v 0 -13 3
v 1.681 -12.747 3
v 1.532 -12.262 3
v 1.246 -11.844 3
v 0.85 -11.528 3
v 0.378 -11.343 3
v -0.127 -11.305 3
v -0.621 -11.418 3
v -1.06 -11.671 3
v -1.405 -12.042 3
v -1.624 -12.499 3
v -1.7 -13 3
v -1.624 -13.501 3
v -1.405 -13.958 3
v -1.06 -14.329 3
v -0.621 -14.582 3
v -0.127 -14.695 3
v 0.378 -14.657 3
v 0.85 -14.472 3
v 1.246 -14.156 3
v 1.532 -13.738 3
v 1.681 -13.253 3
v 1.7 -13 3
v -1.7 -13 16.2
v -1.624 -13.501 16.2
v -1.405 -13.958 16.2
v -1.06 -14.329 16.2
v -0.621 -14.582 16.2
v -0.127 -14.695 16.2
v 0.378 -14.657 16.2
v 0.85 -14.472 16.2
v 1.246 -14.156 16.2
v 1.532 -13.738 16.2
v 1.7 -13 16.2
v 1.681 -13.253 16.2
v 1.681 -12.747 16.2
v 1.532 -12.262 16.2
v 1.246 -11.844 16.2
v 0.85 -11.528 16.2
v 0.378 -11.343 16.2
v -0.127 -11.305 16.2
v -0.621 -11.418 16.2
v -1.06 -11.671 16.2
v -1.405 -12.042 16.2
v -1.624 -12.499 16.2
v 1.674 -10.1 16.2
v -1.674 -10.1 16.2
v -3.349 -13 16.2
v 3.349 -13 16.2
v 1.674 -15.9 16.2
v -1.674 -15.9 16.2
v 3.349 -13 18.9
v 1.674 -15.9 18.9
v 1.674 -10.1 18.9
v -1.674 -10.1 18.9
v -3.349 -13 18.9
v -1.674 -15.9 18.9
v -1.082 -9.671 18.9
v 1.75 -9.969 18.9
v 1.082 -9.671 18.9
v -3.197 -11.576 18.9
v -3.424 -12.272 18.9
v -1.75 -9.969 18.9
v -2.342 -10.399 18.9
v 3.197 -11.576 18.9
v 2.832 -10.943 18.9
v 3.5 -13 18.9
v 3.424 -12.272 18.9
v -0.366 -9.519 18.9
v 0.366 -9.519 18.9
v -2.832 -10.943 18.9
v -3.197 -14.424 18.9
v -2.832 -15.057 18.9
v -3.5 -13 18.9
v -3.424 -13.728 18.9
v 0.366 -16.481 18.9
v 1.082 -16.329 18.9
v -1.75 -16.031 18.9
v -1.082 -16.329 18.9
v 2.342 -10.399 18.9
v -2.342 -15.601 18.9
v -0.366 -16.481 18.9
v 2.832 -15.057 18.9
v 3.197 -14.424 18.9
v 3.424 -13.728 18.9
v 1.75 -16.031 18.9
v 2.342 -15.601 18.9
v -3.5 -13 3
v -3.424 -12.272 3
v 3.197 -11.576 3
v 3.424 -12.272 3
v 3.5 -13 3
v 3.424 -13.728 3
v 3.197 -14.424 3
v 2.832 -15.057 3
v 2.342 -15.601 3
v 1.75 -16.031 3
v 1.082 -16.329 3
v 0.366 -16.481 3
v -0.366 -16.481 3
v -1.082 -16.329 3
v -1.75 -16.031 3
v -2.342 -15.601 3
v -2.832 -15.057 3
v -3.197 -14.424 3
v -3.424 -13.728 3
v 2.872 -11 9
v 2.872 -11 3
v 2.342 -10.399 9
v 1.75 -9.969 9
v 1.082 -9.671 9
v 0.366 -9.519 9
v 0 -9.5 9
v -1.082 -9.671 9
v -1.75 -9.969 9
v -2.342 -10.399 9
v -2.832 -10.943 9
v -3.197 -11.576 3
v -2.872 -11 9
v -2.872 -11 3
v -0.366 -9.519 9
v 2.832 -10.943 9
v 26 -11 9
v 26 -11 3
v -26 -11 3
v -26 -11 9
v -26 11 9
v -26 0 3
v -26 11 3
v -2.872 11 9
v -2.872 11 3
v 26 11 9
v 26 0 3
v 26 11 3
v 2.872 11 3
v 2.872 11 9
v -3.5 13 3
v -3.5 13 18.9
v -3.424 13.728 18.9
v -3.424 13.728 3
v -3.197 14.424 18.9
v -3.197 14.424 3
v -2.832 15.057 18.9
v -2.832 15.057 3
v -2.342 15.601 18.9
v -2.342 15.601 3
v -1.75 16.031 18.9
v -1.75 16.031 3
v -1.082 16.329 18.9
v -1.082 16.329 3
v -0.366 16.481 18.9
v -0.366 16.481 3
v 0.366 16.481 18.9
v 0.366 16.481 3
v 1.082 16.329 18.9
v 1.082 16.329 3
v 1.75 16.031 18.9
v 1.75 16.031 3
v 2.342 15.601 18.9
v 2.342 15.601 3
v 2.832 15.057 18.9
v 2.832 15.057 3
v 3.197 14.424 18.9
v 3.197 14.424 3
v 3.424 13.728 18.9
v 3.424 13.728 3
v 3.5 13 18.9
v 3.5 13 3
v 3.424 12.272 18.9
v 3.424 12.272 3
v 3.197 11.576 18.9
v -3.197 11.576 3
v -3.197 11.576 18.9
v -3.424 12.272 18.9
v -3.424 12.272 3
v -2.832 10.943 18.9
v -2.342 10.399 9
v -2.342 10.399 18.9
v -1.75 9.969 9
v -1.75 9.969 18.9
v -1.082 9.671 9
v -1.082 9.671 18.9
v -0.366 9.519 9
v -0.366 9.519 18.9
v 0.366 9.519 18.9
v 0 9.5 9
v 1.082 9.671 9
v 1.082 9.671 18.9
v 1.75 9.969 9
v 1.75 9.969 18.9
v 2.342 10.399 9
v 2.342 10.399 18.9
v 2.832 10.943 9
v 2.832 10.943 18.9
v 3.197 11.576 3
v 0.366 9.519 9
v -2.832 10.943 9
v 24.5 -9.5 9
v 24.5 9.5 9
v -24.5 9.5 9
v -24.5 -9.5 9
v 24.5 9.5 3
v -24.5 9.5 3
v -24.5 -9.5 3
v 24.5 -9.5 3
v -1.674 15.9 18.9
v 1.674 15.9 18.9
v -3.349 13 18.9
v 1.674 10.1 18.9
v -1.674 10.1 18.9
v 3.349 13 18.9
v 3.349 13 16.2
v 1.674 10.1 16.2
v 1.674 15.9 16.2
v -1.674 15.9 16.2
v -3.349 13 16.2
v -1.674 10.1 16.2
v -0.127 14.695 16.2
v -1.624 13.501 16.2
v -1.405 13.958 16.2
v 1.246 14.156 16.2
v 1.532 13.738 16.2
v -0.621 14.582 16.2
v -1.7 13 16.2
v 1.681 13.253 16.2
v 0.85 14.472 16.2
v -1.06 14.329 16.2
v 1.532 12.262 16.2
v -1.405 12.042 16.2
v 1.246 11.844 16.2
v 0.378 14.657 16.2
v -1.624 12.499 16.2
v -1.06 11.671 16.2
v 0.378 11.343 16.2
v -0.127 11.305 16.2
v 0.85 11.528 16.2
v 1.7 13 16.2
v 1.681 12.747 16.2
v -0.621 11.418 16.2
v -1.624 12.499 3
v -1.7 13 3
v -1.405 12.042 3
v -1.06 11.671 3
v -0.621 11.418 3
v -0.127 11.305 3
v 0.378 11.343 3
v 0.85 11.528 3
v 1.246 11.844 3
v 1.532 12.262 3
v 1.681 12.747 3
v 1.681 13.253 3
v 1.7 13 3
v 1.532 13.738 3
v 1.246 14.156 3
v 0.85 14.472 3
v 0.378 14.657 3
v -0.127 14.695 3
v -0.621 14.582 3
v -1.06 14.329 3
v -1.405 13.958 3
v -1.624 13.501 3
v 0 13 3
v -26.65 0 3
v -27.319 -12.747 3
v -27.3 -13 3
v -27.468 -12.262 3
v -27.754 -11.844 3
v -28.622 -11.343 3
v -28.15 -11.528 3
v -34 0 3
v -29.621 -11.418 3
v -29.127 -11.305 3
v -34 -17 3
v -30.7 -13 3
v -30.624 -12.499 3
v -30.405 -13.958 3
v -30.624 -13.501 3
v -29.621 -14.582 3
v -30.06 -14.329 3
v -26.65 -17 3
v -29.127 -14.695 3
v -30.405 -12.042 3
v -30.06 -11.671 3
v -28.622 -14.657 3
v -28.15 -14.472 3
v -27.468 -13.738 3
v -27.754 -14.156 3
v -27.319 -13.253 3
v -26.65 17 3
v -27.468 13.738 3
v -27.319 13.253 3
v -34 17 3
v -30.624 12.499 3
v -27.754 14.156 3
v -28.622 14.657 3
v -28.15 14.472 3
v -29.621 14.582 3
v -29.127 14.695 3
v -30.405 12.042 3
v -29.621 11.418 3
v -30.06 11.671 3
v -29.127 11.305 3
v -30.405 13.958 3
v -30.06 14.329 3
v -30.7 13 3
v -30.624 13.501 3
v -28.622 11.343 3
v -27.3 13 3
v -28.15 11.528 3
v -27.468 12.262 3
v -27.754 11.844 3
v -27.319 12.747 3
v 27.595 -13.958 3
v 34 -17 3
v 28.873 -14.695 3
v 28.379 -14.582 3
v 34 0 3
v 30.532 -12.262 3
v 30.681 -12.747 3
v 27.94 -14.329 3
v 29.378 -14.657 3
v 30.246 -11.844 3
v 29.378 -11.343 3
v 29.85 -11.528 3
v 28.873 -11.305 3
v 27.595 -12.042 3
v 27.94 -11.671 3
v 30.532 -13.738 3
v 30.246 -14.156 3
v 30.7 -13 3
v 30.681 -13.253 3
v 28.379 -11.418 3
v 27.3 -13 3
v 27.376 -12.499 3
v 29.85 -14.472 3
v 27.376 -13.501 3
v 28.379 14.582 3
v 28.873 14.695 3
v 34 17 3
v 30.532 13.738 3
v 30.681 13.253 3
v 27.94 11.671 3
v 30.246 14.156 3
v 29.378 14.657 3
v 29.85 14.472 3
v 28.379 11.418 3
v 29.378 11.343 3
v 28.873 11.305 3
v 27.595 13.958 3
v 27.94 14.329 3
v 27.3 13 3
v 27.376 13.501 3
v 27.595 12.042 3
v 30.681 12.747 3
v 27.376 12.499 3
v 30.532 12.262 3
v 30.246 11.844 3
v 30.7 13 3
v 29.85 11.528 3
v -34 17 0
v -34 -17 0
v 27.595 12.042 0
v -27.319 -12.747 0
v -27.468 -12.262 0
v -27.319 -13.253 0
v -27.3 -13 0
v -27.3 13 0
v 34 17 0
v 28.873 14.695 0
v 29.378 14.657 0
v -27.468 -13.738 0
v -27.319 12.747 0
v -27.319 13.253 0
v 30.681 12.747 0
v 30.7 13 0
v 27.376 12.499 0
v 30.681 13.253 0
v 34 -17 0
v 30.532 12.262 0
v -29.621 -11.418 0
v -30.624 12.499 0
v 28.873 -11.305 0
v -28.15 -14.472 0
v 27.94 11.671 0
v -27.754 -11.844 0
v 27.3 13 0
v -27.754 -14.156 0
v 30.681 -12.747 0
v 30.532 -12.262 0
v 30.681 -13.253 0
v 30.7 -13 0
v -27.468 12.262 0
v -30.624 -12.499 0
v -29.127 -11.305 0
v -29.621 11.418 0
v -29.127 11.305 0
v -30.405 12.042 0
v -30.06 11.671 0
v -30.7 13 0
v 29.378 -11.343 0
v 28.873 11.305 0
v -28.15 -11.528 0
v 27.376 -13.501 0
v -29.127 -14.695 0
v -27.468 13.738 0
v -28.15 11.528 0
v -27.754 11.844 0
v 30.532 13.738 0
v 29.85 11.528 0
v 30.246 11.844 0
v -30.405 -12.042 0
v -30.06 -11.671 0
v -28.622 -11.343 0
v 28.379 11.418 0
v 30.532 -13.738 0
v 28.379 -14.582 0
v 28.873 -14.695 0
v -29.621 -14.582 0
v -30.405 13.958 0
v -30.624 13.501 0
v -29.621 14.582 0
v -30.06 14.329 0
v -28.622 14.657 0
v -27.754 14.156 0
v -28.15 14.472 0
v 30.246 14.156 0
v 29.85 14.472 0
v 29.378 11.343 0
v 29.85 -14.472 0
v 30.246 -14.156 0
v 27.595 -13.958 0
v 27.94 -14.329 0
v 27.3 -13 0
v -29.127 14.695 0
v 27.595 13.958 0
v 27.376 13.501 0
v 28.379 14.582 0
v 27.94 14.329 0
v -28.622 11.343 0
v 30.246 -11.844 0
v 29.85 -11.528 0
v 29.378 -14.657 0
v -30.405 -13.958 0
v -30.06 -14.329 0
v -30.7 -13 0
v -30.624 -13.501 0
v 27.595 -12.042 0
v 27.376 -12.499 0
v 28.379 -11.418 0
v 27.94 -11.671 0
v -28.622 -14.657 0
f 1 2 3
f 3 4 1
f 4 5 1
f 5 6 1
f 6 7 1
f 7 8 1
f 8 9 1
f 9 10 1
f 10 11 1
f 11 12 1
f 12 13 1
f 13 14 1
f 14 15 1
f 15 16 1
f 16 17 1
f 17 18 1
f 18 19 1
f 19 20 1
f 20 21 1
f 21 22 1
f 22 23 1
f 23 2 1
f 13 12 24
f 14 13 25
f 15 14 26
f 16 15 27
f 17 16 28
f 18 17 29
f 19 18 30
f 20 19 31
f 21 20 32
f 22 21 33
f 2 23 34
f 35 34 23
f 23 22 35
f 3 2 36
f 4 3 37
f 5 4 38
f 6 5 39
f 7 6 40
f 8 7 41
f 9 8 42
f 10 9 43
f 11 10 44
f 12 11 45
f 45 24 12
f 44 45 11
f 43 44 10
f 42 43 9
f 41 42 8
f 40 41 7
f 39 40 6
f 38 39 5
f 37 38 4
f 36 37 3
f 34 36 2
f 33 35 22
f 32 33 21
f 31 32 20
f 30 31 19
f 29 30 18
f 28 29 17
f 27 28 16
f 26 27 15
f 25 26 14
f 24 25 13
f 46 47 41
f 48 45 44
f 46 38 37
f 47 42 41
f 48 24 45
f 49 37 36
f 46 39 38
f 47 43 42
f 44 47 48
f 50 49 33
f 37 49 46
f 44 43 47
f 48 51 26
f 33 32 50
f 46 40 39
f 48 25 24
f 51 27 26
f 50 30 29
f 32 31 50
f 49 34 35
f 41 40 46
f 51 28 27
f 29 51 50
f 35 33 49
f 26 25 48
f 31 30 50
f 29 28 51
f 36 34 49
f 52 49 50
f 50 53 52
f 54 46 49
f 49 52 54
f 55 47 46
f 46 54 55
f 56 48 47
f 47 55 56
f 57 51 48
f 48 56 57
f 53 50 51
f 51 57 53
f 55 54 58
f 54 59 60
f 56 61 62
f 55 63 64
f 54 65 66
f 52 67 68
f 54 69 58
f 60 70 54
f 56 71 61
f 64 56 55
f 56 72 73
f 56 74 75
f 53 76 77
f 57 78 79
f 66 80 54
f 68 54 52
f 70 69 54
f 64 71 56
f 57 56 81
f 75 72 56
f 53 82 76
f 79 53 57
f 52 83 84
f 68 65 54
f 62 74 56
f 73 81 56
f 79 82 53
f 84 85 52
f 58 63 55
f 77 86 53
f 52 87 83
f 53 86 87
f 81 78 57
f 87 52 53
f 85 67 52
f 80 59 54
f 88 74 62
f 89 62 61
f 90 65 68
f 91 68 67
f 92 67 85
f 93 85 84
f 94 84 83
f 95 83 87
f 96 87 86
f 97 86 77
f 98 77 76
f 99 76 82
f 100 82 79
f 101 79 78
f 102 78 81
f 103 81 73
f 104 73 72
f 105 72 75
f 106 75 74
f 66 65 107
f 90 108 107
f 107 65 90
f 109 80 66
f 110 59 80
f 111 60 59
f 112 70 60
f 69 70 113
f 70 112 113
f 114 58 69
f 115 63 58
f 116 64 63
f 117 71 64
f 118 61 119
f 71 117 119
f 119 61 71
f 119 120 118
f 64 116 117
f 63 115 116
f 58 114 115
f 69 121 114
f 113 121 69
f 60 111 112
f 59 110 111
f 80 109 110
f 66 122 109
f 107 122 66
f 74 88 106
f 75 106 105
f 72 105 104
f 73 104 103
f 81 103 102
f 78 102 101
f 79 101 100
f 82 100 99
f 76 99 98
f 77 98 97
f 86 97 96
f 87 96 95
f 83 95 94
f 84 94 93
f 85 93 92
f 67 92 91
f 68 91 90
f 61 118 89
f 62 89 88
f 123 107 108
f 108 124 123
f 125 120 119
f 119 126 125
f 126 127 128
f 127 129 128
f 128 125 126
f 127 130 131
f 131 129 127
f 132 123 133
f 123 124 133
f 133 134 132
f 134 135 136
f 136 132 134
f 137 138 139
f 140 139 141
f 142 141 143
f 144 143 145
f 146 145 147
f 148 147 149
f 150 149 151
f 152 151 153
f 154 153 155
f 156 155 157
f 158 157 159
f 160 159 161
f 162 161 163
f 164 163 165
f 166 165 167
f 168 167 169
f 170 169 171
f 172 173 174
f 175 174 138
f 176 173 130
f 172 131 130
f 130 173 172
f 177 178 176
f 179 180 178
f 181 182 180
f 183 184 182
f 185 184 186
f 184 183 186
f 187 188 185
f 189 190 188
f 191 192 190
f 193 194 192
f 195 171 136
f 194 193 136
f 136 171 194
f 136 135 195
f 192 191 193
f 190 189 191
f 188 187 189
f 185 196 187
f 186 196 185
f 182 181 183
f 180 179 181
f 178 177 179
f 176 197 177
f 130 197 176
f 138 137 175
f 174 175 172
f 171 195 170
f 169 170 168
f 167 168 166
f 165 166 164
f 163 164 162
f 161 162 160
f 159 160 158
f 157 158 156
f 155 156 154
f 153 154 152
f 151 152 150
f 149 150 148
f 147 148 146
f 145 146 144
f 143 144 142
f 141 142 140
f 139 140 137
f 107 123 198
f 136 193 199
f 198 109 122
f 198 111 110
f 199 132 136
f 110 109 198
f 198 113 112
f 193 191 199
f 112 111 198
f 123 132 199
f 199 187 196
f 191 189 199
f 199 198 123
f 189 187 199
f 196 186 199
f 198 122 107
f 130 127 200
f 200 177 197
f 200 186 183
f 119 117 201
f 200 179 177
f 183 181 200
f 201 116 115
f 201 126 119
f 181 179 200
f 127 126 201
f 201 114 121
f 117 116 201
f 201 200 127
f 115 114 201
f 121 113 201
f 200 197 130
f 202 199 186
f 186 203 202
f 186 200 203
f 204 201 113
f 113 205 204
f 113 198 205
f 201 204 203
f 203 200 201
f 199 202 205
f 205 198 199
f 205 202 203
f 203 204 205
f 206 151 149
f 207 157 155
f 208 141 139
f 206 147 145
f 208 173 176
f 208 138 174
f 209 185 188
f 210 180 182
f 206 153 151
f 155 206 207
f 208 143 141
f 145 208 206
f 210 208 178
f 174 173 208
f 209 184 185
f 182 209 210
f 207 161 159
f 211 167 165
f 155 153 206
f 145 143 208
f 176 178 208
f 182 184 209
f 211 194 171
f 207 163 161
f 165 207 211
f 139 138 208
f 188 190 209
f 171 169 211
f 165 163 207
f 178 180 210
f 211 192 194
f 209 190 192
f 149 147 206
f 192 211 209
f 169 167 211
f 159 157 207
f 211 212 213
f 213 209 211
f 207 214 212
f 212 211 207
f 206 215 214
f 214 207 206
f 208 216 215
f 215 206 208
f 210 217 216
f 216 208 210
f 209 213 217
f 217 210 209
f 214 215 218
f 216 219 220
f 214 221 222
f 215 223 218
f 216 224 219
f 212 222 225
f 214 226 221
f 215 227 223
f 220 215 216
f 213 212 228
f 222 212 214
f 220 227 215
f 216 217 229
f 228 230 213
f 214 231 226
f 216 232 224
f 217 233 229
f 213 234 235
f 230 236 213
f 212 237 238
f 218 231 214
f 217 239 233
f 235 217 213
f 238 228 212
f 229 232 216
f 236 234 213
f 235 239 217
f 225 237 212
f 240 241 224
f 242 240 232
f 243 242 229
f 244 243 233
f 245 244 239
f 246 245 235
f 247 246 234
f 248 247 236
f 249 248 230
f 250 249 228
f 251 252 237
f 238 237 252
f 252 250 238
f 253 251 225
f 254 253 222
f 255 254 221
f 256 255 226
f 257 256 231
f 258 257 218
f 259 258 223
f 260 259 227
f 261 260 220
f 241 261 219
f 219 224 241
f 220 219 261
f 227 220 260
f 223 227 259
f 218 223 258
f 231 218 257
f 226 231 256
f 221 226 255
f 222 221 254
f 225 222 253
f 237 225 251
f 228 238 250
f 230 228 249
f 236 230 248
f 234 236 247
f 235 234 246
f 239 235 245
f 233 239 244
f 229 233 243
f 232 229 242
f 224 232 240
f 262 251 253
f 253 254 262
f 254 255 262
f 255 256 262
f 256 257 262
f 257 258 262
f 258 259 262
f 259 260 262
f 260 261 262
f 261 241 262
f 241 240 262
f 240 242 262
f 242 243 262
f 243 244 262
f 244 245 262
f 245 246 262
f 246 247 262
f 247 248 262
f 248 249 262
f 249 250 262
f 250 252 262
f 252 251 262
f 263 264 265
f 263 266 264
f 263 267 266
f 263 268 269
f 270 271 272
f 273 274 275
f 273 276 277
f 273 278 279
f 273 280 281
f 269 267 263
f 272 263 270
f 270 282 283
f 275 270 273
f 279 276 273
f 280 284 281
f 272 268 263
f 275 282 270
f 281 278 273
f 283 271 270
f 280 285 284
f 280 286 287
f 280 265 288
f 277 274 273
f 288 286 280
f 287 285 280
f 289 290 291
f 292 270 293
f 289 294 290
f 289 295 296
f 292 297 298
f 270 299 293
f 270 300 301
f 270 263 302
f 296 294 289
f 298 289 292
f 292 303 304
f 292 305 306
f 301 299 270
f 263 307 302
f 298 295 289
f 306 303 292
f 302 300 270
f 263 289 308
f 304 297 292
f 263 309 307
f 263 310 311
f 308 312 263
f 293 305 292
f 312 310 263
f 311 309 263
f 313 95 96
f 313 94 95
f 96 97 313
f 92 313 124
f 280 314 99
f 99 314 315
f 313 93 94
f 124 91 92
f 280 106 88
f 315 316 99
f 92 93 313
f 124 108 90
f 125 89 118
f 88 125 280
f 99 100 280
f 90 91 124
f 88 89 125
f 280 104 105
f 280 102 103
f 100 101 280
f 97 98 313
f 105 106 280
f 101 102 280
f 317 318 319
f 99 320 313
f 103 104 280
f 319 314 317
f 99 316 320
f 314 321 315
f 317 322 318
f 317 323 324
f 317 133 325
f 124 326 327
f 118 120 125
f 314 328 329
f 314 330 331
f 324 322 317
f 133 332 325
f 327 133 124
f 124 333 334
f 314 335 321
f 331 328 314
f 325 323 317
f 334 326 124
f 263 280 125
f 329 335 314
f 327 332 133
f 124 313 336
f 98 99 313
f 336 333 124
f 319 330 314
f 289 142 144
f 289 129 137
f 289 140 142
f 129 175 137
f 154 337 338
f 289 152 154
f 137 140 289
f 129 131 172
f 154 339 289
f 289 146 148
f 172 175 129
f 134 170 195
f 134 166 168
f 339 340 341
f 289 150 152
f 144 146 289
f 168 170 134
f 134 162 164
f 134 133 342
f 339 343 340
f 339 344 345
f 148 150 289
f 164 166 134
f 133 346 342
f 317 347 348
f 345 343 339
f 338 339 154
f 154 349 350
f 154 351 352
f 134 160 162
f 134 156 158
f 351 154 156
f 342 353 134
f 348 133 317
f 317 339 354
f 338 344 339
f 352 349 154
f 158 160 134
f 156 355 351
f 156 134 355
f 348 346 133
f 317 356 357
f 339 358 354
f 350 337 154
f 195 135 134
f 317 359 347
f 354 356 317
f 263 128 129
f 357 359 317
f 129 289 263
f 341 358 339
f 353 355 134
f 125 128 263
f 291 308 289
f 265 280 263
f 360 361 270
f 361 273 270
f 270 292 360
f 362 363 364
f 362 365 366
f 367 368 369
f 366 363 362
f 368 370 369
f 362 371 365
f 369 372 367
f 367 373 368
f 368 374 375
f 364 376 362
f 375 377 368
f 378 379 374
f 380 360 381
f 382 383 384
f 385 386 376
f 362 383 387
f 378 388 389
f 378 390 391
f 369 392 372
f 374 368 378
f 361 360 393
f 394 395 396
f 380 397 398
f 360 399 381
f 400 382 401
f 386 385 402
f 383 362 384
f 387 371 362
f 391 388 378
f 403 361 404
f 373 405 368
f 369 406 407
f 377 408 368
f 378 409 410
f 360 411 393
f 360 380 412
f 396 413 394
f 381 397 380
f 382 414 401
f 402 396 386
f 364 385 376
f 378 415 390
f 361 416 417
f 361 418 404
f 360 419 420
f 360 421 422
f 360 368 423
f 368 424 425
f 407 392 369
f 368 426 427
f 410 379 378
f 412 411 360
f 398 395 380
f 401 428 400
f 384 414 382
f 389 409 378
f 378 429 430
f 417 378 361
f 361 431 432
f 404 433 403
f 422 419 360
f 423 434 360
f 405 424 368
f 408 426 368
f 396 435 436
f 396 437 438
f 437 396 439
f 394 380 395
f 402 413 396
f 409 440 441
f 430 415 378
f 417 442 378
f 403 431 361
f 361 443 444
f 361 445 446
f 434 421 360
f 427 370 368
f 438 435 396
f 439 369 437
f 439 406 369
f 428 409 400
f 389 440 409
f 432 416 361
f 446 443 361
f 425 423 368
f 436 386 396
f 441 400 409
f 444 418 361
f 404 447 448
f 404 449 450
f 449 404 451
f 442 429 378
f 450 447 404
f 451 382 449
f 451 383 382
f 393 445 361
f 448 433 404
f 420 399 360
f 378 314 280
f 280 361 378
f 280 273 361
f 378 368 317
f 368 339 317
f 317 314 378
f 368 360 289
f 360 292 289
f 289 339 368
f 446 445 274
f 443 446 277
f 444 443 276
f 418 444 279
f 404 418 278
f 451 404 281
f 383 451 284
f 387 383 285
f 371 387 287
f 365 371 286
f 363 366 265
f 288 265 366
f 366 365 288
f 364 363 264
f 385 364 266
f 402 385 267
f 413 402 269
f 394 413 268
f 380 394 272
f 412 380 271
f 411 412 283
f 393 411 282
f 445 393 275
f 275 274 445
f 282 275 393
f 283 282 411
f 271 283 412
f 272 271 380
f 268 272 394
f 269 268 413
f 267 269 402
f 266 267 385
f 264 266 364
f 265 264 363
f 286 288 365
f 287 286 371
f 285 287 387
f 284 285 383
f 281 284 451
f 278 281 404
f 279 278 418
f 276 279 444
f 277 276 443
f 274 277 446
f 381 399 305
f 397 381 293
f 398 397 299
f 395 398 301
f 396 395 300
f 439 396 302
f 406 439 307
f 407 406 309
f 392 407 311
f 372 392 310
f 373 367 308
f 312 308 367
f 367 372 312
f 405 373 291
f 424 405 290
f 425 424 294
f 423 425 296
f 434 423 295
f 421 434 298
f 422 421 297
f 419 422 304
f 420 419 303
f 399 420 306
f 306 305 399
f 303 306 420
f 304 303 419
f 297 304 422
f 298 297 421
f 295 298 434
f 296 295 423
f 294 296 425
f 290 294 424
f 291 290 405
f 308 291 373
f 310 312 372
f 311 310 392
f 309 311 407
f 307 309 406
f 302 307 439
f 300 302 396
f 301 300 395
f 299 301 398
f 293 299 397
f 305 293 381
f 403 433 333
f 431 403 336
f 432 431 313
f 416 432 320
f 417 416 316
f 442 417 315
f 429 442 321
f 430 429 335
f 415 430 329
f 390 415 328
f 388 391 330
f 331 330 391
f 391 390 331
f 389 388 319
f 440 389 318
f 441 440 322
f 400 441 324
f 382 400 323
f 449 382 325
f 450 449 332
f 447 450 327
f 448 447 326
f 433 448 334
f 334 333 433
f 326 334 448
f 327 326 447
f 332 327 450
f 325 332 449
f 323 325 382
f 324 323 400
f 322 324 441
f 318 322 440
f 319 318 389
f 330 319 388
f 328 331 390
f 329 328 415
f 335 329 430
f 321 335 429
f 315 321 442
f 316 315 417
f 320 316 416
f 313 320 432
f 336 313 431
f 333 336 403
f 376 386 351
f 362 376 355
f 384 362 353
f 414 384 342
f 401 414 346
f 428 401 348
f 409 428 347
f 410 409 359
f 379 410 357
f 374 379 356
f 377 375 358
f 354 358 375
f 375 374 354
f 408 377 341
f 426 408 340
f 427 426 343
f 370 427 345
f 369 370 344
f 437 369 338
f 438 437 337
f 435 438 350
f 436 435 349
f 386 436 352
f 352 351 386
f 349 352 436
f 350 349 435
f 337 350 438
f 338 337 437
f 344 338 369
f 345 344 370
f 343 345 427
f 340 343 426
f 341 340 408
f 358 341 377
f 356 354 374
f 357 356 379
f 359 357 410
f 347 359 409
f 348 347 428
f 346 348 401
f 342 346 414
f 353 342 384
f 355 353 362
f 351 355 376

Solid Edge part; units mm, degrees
sketch "Sketch1" plane through (0, 0, 0) normal (0, 0, 1) x (1, 0, 0)
  line L0 (-34, -17) -> (34, -17)
  line L1 (34, -17) -> (34, 17)
  line L2 (34, 17) -> (-34, 17)
  line L3 (-34, 17) -> (-34, -17)
  circle A0 centre (-29, -13) radius 1.7
  circle A1 centre (-29, 13) radius 1.7
  circle A2 centre (29, -13) radius 1.7
  circle A3 centre (29, 13) radius 1.7
extrude "Protrusion1" add sketch "Sketch1" along normal blind 3
sketch "Sketch2" plane through (0, 0, 3) normal (0, 0, 1) x (1, 0, 0)
  line L0 (-26, -11) -> (26, -11)
  line L1 (26, -11) -> (26, 11)
  line L2 (26, 11) -> (-26, 11)
  line L3 (-26, 11) -> (-26, -11)
  line L4 (-24.5, -9.5) -> (24.5, -9.5)
  line L5 (24.5, -9.5) -> (24.5, 9.5)
  line L6 (24.5, 9.5) -> (-24.5, 9.5)
  line L7 (-24.5, 9.5) -> (-24.5, -9.5)
extrude "ExtrudedProtrusion_2" add sketch "Sketch2" along normal blind 6
sketch "Sketch3" plane through (0, 0, 3) normal (0, 0, 1) x (1, 0, 0)
  circle A0 centre (0, -13) radius 3.5
  circle A1 centre (0, -13) radius 1.7
  circle A2 centre (0, 13) radius 3.5
  circle A3 centre (0, 13) radius 1.7
extrude "ExtrudedProtrusion_3" add sketch "Sketch3" along normal blind 15.9
sketch "Sketch4" plane through (0, 0, 16.2) normal (0, 0, 1) x (1, 0, 0)
  line L0 (3.3486, -13) -> (1.6743, -10.1)
  line L1 (1.6743, -10.1) -> (-1.6743, -10.1)
  line L2 (-1.6743, -10.1) -> (-3.3486, -13)
  line L3 (-3.3486, -13) -> (-1.6743, -15.9)
  line L4 (-1.6743, -15.9) -> (1.6743, -15.9)
  line L5 (1.6743, -15.9) -> (3.3486, -13)
  line L6 (3.3486, 13) -> (1.6743, 15.9)
  line L7 (1.6743, 15.9) -> (-1.6743, 15.9)
  line L8 (-1.6743, 15.9) -> (-3.3486, 13)
  line L9 (-3.3486, 13) -> (-1.6743, 10.1)
  line L10 (-1.6743, 10.1) -> (1.6743, 10.1)
  line L11 (1.6743, 10.1) -> (3.3486, 13)
extrude "ExtrudedCutout_1" cut sketch "Sketch4" along normal blind 2.7
